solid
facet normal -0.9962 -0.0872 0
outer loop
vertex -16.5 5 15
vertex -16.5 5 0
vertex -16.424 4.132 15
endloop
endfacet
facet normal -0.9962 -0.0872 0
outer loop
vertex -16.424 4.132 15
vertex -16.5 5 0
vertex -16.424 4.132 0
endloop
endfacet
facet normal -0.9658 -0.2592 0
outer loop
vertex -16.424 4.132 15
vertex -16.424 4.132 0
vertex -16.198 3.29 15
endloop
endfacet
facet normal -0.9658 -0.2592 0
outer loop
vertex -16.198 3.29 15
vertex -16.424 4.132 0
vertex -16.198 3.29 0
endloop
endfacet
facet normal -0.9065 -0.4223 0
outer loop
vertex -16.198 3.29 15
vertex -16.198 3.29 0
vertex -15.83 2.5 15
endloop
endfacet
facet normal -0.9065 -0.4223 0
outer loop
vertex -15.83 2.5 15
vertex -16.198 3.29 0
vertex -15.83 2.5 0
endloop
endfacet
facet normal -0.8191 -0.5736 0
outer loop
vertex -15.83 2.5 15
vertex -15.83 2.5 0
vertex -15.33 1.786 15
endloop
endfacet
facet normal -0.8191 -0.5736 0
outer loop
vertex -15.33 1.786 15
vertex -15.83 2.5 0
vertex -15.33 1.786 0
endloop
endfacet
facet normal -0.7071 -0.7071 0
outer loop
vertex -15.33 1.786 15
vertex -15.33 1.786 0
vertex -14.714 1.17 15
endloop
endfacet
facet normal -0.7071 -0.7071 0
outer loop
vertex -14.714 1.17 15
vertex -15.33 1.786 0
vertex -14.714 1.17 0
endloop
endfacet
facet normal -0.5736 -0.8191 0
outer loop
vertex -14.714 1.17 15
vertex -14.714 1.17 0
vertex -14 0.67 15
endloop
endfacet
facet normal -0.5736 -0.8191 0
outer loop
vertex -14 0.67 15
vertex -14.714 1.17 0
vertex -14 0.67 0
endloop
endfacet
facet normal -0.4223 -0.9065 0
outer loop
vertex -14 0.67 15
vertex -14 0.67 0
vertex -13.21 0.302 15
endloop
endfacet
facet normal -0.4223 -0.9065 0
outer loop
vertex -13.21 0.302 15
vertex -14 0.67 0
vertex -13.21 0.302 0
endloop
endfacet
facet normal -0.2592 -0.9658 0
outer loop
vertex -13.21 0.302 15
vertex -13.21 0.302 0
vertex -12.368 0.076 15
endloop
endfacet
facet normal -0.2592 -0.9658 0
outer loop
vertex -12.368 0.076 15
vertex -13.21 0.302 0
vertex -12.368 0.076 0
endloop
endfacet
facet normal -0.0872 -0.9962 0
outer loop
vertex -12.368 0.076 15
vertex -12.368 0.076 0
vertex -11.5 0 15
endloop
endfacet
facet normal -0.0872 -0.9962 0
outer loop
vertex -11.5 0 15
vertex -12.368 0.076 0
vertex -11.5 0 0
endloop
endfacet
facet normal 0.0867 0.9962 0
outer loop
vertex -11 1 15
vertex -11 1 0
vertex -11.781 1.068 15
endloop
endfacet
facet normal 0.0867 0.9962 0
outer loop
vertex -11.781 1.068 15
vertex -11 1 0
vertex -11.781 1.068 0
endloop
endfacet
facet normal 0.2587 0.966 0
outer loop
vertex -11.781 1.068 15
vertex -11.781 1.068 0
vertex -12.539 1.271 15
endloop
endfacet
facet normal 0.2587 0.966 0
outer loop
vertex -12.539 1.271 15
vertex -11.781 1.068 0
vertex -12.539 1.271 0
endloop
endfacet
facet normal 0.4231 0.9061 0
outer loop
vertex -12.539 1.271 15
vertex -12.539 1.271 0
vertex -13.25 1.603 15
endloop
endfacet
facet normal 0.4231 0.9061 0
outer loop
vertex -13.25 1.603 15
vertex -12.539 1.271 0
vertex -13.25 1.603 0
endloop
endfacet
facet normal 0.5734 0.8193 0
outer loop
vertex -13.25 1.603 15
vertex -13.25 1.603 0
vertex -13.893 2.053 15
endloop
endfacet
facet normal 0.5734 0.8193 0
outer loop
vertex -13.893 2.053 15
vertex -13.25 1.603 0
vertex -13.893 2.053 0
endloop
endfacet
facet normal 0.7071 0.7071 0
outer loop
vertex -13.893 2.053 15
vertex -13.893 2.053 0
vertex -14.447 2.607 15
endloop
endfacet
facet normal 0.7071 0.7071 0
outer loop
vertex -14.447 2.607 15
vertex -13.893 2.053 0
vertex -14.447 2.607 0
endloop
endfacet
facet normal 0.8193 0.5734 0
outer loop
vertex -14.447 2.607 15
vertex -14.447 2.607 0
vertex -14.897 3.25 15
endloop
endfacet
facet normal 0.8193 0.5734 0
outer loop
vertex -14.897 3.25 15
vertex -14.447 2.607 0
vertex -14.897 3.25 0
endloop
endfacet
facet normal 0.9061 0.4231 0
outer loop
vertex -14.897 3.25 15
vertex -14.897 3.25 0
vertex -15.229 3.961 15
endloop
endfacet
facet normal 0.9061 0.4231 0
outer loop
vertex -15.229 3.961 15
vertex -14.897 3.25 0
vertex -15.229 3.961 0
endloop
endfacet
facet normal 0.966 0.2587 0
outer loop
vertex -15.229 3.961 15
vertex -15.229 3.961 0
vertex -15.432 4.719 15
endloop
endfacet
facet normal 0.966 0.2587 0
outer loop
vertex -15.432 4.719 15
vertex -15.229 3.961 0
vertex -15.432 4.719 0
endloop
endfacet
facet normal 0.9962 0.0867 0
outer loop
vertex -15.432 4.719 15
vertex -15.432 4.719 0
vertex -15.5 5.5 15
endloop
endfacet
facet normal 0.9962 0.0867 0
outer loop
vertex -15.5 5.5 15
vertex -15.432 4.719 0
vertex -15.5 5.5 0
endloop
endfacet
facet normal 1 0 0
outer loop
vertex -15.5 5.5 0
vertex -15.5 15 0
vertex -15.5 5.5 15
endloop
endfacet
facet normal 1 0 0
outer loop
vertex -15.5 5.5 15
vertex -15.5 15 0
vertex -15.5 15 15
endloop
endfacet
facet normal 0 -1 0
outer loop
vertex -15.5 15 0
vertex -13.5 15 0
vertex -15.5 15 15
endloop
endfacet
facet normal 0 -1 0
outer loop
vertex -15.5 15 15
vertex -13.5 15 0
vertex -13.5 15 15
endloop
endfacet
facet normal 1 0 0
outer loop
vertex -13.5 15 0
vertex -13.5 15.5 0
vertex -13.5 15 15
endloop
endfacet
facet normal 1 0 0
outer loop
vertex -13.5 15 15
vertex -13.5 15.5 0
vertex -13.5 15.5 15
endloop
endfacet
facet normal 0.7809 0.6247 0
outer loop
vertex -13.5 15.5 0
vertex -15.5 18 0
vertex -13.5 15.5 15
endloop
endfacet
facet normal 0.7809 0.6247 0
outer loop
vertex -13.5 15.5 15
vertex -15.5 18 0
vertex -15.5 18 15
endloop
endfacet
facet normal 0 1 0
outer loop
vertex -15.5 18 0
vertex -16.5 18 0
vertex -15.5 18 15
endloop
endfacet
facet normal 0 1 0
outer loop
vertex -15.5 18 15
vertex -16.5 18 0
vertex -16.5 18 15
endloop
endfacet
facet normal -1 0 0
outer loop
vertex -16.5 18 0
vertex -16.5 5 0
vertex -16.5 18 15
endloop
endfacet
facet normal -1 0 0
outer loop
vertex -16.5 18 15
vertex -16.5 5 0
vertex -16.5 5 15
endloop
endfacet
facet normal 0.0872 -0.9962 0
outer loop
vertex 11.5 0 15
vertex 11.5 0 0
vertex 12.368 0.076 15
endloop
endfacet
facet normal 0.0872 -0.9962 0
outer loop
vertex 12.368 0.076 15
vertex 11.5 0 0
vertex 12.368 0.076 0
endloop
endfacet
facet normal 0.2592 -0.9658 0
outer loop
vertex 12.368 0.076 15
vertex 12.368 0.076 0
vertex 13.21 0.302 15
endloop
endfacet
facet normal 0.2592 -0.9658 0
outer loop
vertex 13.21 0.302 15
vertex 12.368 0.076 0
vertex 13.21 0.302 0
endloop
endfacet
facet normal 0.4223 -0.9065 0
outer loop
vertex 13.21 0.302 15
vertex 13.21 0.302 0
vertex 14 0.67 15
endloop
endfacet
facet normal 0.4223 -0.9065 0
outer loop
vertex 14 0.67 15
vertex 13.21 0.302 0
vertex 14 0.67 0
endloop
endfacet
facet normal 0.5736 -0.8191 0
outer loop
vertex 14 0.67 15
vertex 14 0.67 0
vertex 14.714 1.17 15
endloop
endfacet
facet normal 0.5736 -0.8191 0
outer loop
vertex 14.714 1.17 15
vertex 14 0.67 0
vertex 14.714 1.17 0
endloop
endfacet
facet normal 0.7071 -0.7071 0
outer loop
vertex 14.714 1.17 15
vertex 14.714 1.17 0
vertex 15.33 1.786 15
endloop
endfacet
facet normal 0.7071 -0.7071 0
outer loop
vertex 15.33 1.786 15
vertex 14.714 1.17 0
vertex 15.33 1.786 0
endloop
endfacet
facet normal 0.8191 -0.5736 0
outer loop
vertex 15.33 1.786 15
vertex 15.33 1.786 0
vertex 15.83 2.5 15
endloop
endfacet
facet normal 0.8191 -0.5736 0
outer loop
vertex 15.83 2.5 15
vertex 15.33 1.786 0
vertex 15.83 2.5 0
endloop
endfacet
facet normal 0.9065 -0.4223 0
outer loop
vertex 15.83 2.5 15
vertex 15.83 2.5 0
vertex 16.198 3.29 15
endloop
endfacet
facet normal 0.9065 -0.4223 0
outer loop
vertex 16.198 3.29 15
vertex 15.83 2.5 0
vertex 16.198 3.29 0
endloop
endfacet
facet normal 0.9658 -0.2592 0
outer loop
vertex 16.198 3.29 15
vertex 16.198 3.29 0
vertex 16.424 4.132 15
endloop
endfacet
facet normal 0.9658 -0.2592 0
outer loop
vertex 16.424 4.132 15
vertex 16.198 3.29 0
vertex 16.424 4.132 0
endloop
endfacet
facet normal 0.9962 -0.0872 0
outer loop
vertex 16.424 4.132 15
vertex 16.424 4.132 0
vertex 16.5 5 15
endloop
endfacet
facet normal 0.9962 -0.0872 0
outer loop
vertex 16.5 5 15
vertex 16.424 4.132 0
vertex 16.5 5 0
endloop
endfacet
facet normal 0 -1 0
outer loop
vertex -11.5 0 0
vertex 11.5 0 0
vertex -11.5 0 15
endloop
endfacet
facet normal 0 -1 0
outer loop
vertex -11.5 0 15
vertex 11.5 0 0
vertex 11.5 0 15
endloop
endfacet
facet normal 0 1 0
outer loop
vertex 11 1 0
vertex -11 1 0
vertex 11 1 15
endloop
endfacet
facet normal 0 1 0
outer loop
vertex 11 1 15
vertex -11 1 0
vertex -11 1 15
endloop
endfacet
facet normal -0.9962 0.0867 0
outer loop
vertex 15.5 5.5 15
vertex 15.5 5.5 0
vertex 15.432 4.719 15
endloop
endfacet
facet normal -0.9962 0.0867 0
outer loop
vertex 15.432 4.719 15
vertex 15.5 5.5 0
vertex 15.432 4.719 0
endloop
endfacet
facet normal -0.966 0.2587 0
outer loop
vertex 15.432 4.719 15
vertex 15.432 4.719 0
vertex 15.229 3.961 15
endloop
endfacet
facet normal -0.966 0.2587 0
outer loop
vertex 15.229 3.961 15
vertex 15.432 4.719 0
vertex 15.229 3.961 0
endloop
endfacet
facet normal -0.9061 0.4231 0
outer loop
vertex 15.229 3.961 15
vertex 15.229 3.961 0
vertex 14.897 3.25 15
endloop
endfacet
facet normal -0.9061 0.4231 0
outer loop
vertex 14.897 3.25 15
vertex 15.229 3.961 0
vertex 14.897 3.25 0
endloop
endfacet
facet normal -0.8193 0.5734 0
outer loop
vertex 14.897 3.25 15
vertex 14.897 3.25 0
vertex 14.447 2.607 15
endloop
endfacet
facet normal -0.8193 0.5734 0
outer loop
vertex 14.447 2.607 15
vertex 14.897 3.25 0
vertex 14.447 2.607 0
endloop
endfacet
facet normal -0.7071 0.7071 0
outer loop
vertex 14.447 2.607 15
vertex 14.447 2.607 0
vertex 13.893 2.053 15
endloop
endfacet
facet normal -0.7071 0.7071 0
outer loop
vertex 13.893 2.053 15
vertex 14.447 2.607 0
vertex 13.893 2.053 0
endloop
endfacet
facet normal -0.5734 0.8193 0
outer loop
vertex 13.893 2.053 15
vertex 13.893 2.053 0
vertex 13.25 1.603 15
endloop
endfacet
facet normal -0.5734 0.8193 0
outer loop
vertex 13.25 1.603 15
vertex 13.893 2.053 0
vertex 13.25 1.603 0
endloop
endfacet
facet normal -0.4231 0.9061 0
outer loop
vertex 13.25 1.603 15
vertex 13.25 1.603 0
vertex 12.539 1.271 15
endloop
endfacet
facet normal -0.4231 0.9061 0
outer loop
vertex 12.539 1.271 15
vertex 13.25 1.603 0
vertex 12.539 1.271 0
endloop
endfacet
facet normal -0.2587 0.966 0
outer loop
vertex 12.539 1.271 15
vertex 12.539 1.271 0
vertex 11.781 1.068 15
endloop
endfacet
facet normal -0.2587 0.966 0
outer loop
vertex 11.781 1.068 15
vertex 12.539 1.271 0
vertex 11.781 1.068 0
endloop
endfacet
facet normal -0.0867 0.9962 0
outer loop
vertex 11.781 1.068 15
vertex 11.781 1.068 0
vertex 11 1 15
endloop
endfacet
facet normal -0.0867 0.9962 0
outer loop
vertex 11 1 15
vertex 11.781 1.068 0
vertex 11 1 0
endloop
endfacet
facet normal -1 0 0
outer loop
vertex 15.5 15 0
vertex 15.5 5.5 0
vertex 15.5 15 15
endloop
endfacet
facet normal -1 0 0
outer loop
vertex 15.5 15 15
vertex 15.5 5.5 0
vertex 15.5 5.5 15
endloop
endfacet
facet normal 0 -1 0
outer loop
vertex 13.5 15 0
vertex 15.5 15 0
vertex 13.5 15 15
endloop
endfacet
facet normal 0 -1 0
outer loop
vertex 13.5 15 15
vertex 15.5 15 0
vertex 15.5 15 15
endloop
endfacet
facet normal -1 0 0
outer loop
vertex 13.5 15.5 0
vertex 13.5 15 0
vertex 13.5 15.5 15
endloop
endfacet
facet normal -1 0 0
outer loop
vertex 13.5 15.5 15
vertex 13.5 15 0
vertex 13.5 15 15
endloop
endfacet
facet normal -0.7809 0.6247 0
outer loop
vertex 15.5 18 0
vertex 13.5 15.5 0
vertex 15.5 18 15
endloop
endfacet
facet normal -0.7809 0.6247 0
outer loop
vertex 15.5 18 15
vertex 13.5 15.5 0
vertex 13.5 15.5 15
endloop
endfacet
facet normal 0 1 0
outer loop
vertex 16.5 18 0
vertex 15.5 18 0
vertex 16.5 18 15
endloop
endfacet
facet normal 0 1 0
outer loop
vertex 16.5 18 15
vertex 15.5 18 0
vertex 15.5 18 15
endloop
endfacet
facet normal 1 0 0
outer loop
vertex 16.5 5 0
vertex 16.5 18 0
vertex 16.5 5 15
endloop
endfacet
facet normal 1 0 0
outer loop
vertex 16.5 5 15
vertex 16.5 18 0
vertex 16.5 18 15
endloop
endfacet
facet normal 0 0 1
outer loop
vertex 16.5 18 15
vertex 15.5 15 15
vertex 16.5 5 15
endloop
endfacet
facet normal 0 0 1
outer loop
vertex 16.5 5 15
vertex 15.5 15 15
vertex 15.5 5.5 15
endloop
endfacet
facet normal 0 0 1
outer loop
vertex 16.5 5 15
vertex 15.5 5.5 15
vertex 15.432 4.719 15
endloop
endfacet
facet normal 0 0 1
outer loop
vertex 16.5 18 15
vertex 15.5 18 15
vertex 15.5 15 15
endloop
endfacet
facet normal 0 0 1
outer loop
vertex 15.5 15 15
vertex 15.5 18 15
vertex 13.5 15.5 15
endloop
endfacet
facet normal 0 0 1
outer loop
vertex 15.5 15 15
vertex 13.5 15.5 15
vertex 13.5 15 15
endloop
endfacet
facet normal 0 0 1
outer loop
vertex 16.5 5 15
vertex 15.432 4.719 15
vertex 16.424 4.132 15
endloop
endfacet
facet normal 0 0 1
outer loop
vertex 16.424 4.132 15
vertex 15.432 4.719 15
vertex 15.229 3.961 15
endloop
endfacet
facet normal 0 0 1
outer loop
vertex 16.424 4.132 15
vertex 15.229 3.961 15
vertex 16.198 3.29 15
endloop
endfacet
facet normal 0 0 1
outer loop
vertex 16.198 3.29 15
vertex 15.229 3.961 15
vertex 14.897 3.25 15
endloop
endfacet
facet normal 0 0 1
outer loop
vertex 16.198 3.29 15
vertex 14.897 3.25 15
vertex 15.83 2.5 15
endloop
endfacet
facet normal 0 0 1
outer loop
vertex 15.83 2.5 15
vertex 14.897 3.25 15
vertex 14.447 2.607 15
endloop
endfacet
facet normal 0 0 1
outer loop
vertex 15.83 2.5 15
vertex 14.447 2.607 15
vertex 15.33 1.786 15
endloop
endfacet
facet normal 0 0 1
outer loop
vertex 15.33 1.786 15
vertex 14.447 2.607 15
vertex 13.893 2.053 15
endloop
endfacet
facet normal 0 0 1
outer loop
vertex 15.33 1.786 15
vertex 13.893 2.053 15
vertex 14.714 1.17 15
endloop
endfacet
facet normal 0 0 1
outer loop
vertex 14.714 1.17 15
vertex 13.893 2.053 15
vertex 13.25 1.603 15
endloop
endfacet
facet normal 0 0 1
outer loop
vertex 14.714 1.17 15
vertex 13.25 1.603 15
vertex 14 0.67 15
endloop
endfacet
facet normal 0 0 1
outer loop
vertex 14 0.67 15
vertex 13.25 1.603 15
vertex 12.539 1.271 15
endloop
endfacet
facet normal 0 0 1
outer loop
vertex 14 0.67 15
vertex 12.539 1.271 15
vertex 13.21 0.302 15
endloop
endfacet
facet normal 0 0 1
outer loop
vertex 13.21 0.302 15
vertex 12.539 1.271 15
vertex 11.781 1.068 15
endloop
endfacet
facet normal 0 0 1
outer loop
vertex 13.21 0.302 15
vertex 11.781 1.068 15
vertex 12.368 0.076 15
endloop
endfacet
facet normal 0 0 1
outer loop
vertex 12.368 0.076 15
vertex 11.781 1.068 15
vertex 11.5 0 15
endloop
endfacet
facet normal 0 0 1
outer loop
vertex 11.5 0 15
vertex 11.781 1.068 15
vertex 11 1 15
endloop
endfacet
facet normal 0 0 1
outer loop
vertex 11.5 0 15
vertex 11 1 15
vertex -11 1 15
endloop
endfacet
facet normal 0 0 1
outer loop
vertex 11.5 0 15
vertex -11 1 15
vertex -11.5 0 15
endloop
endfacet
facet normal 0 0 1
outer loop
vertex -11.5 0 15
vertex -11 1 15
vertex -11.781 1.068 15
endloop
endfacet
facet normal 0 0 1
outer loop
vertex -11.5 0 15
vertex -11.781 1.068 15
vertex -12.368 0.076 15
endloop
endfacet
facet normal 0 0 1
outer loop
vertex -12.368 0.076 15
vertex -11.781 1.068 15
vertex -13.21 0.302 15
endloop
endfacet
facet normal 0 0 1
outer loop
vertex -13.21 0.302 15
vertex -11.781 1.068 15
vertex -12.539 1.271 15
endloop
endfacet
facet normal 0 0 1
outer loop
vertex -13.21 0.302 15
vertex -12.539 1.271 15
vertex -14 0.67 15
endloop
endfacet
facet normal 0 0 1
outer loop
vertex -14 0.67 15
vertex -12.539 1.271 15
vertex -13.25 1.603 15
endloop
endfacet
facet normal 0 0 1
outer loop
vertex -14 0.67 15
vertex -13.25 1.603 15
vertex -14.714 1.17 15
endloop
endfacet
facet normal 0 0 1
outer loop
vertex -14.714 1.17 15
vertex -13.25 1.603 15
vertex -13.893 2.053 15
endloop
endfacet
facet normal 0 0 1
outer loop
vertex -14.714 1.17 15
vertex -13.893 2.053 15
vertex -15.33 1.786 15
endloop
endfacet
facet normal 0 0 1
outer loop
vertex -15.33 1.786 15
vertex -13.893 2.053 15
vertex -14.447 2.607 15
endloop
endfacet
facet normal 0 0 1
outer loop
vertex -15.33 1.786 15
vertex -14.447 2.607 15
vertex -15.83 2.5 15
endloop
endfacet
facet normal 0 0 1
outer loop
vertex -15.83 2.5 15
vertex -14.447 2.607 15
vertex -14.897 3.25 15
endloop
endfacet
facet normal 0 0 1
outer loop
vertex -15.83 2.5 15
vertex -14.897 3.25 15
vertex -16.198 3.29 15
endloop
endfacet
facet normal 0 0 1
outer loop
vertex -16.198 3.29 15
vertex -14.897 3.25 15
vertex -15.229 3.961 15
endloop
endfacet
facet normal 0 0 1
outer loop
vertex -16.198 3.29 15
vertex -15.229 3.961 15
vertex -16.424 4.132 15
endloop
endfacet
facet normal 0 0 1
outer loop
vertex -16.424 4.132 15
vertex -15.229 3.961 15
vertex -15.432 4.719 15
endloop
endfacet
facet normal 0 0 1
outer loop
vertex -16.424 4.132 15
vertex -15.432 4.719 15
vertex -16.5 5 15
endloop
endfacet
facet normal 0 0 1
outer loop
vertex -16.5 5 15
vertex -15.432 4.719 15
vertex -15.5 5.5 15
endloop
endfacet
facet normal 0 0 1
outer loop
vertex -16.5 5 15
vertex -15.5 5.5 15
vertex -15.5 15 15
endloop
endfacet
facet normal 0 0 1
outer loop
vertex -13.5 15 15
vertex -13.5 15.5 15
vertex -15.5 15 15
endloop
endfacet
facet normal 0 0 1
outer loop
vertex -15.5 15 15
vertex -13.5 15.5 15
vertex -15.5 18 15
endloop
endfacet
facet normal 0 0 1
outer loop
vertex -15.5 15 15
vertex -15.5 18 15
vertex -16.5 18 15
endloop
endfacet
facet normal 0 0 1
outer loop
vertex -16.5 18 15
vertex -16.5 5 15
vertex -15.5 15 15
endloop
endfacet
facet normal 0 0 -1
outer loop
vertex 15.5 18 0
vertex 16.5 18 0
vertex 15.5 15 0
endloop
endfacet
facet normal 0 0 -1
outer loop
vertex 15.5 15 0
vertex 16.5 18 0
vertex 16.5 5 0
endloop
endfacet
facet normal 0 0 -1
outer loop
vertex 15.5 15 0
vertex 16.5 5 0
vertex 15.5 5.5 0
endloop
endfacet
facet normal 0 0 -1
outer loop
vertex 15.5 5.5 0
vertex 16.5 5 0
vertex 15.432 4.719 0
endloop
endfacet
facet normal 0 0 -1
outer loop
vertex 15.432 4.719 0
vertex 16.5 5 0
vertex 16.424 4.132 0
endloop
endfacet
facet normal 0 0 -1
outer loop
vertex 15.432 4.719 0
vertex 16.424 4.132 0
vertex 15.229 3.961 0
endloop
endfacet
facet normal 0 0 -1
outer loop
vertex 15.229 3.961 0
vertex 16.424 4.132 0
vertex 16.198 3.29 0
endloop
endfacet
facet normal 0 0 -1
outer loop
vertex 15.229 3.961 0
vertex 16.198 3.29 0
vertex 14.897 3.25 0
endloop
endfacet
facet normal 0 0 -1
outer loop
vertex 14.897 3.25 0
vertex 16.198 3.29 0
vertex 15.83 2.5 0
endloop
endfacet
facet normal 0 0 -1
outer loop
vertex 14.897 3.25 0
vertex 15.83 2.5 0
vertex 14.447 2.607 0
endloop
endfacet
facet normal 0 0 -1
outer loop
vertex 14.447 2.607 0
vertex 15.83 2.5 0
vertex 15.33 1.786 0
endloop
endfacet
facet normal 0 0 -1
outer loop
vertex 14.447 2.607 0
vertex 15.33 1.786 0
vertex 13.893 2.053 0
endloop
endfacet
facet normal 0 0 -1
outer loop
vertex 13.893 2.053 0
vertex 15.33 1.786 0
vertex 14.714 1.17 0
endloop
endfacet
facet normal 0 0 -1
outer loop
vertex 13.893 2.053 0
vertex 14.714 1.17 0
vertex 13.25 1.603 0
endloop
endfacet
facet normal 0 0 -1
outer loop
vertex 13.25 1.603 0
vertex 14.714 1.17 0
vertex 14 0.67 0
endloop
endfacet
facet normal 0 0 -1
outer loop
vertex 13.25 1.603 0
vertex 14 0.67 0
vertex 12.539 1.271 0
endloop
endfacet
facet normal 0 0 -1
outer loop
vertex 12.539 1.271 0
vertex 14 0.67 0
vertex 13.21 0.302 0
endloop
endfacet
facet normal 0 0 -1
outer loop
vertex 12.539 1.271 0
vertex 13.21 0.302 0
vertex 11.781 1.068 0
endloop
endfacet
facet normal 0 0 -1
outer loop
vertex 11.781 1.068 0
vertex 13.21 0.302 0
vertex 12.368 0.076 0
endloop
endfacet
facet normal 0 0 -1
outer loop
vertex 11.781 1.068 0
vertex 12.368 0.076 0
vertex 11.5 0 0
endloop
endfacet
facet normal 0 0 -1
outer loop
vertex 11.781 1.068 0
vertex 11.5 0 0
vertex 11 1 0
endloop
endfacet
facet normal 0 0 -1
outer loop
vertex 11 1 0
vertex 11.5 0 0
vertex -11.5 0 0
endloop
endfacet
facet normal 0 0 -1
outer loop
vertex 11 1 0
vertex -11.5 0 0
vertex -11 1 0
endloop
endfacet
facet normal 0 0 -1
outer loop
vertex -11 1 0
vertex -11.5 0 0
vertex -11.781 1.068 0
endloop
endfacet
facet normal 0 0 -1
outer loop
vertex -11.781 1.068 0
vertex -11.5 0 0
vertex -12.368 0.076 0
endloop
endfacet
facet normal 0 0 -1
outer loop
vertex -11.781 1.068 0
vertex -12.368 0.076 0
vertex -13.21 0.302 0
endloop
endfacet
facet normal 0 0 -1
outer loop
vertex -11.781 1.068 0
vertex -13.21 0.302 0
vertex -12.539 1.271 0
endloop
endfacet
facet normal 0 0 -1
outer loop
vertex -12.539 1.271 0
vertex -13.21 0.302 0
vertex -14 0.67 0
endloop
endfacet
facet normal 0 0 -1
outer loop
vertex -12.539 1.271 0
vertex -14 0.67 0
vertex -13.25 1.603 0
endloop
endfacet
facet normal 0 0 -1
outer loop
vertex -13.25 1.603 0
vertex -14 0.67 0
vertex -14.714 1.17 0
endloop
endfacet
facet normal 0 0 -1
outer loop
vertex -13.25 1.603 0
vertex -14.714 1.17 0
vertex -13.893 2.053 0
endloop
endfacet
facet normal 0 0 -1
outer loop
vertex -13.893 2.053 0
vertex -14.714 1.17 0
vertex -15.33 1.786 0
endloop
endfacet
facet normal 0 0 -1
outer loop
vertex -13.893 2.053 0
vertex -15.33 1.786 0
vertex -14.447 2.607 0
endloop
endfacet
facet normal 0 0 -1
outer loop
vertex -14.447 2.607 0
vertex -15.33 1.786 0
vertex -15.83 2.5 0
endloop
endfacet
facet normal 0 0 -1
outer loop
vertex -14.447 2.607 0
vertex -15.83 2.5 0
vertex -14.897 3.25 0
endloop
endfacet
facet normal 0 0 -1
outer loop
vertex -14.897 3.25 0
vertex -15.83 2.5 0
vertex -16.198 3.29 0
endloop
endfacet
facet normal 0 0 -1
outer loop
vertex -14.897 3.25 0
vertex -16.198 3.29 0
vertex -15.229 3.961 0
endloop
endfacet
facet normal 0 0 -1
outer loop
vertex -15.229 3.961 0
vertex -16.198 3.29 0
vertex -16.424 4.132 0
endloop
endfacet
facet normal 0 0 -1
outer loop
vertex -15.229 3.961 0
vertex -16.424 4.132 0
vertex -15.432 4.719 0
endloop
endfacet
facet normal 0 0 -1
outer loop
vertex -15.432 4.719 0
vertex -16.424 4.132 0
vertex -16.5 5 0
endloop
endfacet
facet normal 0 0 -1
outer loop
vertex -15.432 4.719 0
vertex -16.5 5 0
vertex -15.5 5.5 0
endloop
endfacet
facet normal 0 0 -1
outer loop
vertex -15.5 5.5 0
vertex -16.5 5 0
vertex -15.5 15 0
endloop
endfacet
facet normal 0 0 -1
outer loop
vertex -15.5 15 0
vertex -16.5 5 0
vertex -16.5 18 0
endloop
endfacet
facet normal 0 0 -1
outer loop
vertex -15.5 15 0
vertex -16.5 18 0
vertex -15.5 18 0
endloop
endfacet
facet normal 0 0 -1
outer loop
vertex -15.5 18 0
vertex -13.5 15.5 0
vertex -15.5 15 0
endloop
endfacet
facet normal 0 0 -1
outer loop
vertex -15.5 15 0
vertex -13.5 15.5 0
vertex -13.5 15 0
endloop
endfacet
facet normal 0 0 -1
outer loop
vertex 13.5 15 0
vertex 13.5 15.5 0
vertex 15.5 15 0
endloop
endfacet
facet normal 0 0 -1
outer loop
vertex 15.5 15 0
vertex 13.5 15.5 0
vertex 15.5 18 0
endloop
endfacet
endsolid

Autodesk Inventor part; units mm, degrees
ref_plane "YZ Plane" through (0, 0, 0) normal (1, 0, 0) x (0, 1, 0)
ref_plane "XZ Plane" through (0, 0, 0) normal (0, 1, 0) x (-1, 0, 0)
ref_plane "XY Plane" through (0, 0, 0) normal (0, 0, 1) x (1, 0, 0)
sketch "Skizze1" plane through (0, 0, 0) normal (0, 0, 1) x (1, 0, 0)
  line L0 (15.5, 18) -> (16.5, 18)
  line L1 (16.5, 18) -> (16.5, 5)
  line L2 (11.5, 0) -> (0, 0)
  line L3 (0, 0) -> (0, 1)
  line L4 (0, 1) -> (11, 1)
  line L5 (15.5, 5.5) -> (15.5, 15)
  line L6 (15.5, 15) -> (13.5, 15)
  line L7 (13.5, 15) -> (13.5, 15.5)
  line L8 (13.5, 15.5) -> (15.5, 18)
  arc A0 (11, 1) -> (15.5, 5.5) centre (11, 5.5) ccw
  arc A1 (11.5, 0) -> (16.5, 5) centre (11.5, 5) ccw
  point P0 (16.5, 0)
  point P1 (15.5, 1)
  point P2 (16, 18)
  dimension "d0" = 1
  dimension "d1" = 1
  dimension "d2" = 15.5
  dimension "d3" = 14
  dimension "d4" = 3
  dimension "d5" = 0.5
  dimension "d6" = 1
  dimension "d7" = 2
  dimension "d10" = 4.5
  dimension "d11" = 5
extrude "Extrusion1" add sketch "Skizze1" along normal blind 15
mirror "Spiegeln1" about plane through (0, 0, 0) normal (1, 0, 0)
properties part number "P_Halter"
